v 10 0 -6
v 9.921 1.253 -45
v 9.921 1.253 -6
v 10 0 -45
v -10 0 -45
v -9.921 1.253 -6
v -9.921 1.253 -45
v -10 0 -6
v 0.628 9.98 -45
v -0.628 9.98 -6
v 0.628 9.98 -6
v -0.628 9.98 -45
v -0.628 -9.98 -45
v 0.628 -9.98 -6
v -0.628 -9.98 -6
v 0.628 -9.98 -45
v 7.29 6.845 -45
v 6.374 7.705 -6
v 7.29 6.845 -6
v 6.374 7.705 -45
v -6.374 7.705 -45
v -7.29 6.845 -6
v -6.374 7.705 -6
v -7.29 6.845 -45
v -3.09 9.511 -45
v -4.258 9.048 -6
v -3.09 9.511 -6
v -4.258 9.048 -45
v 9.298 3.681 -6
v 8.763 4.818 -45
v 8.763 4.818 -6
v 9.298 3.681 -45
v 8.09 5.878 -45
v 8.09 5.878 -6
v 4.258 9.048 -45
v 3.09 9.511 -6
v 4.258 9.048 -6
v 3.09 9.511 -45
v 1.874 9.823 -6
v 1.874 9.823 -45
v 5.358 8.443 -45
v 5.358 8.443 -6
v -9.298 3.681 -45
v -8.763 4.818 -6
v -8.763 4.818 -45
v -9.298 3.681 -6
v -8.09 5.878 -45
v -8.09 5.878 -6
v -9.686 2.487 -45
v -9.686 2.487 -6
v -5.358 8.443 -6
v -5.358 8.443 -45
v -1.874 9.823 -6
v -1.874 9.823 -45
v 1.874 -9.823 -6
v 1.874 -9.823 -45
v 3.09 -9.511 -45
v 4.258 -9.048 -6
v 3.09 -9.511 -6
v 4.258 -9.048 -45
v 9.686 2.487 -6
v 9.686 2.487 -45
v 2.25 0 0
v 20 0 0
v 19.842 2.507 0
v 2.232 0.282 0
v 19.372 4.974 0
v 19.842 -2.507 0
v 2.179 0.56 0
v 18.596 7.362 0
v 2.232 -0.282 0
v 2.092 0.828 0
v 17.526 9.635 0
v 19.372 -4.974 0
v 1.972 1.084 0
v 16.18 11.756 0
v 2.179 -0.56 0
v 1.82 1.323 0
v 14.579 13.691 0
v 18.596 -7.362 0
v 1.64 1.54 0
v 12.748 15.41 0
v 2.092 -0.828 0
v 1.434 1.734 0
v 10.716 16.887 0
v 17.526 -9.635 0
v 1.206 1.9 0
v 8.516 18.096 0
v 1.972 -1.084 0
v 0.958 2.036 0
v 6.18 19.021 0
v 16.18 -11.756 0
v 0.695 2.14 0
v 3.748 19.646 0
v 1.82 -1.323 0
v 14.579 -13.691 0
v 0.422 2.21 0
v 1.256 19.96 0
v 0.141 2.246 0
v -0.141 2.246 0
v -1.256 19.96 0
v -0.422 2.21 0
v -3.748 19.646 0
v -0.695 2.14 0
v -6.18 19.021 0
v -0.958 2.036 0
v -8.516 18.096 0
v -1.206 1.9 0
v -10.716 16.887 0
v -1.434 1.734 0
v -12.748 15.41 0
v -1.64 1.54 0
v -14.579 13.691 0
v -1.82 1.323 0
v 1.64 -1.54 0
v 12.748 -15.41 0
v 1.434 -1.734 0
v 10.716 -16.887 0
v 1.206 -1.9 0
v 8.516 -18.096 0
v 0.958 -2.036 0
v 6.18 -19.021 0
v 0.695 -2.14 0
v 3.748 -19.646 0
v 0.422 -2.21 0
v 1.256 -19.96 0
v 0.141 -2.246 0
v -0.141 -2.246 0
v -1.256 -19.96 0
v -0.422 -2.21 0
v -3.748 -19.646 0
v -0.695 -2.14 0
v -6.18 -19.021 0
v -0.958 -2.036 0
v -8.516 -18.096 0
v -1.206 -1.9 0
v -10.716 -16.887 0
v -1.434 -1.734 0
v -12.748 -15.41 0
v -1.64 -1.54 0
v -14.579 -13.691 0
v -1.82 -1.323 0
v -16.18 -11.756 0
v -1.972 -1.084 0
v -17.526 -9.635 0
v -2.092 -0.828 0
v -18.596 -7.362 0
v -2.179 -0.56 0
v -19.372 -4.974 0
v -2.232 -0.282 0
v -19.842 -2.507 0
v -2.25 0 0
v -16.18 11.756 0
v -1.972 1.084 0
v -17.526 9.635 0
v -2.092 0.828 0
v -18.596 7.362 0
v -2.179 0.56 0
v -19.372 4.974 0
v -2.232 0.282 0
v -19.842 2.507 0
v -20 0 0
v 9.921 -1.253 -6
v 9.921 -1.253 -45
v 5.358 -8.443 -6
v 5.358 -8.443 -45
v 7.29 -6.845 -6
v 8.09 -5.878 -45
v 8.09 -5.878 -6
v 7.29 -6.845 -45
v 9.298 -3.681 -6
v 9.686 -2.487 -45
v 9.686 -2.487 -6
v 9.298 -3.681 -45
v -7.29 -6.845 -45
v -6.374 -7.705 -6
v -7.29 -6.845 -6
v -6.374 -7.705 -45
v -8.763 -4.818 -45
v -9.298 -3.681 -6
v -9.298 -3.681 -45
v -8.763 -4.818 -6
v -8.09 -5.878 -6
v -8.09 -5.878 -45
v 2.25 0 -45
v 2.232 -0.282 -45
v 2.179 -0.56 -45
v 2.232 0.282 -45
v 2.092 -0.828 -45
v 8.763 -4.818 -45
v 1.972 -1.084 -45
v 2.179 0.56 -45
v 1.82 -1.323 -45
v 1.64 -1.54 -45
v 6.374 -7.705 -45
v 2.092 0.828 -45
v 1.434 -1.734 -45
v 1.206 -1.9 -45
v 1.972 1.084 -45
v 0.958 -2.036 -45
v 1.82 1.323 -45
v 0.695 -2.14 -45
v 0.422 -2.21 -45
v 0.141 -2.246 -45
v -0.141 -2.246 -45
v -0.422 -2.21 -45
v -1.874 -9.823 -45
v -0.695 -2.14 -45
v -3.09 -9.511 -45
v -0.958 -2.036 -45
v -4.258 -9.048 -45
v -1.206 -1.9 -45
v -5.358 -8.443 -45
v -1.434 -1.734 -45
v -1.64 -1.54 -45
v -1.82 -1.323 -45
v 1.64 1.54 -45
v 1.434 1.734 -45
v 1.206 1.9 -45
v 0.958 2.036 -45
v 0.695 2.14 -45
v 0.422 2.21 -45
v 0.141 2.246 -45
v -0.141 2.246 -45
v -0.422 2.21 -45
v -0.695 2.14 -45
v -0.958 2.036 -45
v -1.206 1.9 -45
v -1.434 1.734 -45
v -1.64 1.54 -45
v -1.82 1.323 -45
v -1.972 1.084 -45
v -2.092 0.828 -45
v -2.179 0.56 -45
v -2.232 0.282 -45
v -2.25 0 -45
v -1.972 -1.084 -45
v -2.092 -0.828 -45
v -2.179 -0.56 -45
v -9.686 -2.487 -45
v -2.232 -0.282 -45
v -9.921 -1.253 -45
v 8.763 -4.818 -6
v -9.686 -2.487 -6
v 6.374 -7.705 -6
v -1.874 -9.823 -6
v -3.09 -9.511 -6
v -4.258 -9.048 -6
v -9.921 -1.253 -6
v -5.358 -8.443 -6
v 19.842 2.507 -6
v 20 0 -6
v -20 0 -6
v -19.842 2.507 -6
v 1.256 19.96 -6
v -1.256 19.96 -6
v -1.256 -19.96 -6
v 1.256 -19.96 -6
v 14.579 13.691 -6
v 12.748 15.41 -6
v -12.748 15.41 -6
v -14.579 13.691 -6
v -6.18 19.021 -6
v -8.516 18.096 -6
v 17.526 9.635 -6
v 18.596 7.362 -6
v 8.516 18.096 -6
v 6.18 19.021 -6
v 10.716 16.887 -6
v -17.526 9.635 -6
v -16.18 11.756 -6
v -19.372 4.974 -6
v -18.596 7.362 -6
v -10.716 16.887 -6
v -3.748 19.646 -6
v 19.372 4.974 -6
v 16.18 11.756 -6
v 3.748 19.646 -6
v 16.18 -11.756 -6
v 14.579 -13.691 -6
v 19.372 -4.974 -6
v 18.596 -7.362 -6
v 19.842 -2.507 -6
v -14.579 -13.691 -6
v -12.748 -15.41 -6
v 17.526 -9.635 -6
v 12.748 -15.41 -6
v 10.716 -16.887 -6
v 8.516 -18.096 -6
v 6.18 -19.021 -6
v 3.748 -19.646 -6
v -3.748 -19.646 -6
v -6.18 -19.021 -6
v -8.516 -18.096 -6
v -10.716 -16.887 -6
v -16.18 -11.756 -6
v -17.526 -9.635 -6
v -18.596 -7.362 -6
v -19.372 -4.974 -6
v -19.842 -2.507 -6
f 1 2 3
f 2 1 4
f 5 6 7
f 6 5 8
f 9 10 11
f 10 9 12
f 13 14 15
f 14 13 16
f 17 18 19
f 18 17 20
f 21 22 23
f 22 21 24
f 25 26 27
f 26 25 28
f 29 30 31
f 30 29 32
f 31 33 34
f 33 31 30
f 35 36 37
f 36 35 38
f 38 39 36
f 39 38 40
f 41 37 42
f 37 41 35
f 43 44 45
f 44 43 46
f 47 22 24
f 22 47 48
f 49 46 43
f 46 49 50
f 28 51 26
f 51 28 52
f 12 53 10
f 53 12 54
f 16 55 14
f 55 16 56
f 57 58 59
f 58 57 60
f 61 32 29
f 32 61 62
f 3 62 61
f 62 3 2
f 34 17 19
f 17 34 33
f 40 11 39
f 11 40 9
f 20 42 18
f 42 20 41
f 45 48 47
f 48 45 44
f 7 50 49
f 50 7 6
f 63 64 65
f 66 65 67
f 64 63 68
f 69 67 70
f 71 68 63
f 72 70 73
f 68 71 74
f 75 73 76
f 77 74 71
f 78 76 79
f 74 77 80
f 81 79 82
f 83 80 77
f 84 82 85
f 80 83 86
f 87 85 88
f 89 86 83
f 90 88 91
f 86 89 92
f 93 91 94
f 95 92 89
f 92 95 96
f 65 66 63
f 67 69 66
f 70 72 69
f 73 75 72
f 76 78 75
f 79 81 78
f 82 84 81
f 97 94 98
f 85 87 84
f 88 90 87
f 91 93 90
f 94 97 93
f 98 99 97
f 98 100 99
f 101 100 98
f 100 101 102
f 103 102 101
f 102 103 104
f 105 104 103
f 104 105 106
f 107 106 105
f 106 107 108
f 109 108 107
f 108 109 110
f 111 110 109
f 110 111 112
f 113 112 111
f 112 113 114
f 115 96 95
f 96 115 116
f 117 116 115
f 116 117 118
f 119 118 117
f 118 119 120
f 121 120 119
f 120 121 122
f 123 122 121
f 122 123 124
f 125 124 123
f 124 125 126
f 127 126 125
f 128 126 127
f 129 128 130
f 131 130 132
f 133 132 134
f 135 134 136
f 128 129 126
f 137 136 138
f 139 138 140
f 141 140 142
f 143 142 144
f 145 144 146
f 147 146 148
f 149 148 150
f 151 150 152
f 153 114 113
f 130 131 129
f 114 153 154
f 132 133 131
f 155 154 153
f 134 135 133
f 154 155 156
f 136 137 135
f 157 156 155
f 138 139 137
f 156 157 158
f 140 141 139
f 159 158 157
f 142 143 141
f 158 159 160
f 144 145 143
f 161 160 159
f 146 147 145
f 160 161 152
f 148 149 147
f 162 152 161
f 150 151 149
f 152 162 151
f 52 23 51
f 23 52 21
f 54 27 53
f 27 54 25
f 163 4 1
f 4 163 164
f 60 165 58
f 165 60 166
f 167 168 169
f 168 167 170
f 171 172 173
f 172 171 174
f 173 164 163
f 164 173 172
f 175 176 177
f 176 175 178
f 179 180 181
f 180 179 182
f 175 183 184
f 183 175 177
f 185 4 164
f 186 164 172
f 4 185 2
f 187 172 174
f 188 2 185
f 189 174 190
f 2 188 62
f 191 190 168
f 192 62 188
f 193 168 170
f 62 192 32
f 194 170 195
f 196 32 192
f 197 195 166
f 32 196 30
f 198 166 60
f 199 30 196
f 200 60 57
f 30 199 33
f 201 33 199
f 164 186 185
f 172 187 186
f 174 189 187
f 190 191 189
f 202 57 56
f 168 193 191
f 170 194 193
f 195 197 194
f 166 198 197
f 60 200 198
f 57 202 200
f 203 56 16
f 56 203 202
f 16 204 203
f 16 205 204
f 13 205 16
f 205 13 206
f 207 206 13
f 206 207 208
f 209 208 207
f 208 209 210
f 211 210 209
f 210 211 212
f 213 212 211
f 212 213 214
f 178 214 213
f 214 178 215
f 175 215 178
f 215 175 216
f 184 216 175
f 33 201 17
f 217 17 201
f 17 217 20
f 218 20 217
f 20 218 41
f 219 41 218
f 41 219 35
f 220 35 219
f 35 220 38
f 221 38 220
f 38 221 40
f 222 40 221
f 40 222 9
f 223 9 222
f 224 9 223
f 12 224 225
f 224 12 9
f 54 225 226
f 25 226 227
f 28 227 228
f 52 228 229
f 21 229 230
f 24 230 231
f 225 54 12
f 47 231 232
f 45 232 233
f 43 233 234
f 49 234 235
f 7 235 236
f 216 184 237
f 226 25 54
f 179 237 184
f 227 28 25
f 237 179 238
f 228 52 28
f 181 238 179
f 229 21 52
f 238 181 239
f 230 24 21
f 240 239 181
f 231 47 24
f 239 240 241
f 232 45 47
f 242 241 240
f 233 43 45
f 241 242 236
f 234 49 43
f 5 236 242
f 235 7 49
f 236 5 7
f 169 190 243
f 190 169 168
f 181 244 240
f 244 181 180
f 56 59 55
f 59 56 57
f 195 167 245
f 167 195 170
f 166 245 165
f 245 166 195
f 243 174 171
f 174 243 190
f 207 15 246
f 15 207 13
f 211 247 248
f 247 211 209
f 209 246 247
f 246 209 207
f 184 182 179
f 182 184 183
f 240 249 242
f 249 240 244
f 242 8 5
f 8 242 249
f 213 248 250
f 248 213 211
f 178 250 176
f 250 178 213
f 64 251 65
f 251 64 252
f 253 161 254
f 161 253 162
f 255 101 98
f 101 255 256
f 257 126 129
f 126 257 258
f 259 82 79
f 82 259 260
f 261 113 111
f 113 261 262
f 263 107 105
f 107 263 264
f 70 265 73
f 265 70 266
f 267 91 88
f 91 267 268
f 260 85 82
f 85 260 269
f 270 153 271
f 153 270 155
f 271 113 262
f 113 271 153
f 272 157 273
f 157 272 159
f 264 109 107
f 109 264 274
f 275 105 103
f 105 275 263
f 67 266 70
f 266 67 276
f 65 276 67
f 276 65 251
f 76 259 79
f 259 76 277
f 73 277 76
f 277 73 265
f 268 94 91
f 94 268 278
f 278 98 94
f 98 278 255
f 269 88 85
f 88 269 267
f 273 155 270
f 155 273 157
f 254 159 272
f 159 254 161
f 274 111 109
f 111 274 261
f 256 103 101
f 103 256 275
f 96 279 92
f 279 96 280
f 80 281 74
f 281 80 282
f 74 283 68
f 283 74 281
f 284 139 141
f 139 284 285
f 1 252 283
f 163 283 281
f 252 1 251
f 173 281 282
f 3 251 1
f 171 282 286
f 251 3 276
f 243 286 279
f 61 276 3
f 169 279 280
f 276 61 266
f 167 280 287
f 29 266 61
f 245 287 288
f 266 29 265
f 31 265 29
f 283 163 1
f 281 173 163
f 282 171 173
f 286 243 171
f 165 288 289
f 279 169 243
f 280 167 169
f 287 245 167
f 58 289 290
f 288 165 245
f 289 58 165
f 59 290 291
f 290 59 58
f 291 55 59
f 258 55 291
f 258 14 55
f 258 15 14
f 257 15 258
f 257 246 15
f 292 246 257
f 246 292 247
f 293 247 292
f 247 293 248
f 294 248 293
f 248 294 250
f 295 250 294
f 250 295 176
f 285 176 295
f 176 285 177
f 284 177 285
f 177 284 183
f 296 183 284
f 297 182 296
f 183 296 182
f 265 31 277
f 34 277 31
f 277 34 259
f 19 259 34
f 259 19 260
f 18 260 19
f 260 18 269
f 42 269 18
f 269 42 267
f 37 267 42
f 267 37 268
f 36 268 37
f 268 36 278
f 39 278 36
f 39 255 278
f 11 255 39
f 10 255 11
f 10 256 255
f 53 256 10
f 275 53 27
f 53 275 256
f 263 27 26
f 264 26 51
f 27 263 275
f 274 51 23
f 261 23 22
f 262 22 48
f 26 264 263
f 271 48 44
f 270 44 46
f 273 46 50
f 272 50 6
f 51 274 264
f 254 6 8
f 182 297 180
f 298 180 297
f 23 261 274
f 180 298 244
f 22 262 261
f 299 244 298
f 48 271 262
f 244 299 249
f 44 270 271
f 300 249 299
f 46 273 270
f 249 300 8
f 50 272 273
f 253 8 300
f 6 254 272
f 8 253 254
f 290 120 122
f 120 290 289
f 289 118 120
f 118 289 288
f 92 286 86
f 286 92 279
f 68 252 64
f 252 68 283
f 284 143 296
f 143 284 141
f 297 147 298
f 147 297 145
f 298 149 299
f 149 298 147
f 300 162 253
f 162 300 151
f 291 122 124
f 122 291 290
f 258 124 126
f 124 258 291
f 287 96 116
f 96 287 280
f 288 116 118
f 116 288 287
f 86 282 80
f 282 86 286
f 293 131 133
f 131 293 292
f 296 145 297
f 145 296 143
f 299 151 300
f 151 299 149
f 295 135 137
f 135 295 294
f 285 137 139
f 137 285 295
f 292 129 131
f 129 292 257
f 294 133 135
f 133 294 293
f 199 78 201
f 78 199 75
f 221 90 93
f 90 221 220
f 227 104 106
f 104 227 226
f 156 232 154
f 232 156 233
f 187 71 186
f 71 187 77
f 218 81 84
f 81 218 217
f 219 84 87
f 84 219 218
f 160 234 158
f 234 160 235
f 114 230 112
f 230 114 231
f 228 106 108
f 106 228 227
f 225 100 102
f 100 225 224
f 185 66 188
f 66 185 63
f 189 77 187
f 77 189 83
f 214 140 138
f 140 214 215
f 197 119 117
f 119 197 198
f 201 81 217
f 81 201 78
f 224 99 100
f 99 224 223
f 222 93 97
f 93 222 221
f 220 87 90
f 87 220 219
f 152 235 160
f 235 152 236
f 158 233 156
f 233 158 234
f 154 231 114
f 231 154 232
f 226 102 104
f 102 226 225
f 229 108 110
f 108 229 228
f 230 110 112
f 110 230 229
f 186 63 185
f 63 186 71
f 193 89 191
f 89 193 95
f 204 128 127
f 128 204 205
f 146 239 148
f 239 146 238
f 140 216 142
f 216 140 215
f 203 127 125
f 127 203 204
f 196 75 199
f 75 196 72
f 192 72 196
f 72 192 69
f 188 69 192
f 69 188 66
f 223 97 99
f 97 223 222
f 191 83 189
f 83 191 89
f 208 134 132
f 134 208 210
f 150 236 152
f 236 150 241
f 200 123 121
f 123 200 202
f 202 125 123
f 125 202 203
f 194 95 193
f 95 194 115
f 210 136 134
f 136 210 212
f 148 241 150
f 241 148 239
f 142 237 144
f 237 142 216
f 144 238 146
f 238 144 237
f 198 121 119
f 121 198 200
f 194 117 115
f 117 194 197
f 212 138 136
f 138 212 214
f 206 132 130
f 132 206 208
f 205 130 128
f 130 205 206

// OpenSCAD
$fn = 50;


difference() {
	union() {
		translate(v = [0, 0, -45.0000000000]) {
			cylinder(h = 45, r = 10.0000000000);
		}
		translate(v = [0, 0, -6.0000000000]) {
			cylinder(h = 6, r = 20.0000000000);
		}
	}
	union() {
		#translate(v = [0, 0, -45]) {
			cylinder(h = 45, r = 2.2500000000);
		}
	}
}
